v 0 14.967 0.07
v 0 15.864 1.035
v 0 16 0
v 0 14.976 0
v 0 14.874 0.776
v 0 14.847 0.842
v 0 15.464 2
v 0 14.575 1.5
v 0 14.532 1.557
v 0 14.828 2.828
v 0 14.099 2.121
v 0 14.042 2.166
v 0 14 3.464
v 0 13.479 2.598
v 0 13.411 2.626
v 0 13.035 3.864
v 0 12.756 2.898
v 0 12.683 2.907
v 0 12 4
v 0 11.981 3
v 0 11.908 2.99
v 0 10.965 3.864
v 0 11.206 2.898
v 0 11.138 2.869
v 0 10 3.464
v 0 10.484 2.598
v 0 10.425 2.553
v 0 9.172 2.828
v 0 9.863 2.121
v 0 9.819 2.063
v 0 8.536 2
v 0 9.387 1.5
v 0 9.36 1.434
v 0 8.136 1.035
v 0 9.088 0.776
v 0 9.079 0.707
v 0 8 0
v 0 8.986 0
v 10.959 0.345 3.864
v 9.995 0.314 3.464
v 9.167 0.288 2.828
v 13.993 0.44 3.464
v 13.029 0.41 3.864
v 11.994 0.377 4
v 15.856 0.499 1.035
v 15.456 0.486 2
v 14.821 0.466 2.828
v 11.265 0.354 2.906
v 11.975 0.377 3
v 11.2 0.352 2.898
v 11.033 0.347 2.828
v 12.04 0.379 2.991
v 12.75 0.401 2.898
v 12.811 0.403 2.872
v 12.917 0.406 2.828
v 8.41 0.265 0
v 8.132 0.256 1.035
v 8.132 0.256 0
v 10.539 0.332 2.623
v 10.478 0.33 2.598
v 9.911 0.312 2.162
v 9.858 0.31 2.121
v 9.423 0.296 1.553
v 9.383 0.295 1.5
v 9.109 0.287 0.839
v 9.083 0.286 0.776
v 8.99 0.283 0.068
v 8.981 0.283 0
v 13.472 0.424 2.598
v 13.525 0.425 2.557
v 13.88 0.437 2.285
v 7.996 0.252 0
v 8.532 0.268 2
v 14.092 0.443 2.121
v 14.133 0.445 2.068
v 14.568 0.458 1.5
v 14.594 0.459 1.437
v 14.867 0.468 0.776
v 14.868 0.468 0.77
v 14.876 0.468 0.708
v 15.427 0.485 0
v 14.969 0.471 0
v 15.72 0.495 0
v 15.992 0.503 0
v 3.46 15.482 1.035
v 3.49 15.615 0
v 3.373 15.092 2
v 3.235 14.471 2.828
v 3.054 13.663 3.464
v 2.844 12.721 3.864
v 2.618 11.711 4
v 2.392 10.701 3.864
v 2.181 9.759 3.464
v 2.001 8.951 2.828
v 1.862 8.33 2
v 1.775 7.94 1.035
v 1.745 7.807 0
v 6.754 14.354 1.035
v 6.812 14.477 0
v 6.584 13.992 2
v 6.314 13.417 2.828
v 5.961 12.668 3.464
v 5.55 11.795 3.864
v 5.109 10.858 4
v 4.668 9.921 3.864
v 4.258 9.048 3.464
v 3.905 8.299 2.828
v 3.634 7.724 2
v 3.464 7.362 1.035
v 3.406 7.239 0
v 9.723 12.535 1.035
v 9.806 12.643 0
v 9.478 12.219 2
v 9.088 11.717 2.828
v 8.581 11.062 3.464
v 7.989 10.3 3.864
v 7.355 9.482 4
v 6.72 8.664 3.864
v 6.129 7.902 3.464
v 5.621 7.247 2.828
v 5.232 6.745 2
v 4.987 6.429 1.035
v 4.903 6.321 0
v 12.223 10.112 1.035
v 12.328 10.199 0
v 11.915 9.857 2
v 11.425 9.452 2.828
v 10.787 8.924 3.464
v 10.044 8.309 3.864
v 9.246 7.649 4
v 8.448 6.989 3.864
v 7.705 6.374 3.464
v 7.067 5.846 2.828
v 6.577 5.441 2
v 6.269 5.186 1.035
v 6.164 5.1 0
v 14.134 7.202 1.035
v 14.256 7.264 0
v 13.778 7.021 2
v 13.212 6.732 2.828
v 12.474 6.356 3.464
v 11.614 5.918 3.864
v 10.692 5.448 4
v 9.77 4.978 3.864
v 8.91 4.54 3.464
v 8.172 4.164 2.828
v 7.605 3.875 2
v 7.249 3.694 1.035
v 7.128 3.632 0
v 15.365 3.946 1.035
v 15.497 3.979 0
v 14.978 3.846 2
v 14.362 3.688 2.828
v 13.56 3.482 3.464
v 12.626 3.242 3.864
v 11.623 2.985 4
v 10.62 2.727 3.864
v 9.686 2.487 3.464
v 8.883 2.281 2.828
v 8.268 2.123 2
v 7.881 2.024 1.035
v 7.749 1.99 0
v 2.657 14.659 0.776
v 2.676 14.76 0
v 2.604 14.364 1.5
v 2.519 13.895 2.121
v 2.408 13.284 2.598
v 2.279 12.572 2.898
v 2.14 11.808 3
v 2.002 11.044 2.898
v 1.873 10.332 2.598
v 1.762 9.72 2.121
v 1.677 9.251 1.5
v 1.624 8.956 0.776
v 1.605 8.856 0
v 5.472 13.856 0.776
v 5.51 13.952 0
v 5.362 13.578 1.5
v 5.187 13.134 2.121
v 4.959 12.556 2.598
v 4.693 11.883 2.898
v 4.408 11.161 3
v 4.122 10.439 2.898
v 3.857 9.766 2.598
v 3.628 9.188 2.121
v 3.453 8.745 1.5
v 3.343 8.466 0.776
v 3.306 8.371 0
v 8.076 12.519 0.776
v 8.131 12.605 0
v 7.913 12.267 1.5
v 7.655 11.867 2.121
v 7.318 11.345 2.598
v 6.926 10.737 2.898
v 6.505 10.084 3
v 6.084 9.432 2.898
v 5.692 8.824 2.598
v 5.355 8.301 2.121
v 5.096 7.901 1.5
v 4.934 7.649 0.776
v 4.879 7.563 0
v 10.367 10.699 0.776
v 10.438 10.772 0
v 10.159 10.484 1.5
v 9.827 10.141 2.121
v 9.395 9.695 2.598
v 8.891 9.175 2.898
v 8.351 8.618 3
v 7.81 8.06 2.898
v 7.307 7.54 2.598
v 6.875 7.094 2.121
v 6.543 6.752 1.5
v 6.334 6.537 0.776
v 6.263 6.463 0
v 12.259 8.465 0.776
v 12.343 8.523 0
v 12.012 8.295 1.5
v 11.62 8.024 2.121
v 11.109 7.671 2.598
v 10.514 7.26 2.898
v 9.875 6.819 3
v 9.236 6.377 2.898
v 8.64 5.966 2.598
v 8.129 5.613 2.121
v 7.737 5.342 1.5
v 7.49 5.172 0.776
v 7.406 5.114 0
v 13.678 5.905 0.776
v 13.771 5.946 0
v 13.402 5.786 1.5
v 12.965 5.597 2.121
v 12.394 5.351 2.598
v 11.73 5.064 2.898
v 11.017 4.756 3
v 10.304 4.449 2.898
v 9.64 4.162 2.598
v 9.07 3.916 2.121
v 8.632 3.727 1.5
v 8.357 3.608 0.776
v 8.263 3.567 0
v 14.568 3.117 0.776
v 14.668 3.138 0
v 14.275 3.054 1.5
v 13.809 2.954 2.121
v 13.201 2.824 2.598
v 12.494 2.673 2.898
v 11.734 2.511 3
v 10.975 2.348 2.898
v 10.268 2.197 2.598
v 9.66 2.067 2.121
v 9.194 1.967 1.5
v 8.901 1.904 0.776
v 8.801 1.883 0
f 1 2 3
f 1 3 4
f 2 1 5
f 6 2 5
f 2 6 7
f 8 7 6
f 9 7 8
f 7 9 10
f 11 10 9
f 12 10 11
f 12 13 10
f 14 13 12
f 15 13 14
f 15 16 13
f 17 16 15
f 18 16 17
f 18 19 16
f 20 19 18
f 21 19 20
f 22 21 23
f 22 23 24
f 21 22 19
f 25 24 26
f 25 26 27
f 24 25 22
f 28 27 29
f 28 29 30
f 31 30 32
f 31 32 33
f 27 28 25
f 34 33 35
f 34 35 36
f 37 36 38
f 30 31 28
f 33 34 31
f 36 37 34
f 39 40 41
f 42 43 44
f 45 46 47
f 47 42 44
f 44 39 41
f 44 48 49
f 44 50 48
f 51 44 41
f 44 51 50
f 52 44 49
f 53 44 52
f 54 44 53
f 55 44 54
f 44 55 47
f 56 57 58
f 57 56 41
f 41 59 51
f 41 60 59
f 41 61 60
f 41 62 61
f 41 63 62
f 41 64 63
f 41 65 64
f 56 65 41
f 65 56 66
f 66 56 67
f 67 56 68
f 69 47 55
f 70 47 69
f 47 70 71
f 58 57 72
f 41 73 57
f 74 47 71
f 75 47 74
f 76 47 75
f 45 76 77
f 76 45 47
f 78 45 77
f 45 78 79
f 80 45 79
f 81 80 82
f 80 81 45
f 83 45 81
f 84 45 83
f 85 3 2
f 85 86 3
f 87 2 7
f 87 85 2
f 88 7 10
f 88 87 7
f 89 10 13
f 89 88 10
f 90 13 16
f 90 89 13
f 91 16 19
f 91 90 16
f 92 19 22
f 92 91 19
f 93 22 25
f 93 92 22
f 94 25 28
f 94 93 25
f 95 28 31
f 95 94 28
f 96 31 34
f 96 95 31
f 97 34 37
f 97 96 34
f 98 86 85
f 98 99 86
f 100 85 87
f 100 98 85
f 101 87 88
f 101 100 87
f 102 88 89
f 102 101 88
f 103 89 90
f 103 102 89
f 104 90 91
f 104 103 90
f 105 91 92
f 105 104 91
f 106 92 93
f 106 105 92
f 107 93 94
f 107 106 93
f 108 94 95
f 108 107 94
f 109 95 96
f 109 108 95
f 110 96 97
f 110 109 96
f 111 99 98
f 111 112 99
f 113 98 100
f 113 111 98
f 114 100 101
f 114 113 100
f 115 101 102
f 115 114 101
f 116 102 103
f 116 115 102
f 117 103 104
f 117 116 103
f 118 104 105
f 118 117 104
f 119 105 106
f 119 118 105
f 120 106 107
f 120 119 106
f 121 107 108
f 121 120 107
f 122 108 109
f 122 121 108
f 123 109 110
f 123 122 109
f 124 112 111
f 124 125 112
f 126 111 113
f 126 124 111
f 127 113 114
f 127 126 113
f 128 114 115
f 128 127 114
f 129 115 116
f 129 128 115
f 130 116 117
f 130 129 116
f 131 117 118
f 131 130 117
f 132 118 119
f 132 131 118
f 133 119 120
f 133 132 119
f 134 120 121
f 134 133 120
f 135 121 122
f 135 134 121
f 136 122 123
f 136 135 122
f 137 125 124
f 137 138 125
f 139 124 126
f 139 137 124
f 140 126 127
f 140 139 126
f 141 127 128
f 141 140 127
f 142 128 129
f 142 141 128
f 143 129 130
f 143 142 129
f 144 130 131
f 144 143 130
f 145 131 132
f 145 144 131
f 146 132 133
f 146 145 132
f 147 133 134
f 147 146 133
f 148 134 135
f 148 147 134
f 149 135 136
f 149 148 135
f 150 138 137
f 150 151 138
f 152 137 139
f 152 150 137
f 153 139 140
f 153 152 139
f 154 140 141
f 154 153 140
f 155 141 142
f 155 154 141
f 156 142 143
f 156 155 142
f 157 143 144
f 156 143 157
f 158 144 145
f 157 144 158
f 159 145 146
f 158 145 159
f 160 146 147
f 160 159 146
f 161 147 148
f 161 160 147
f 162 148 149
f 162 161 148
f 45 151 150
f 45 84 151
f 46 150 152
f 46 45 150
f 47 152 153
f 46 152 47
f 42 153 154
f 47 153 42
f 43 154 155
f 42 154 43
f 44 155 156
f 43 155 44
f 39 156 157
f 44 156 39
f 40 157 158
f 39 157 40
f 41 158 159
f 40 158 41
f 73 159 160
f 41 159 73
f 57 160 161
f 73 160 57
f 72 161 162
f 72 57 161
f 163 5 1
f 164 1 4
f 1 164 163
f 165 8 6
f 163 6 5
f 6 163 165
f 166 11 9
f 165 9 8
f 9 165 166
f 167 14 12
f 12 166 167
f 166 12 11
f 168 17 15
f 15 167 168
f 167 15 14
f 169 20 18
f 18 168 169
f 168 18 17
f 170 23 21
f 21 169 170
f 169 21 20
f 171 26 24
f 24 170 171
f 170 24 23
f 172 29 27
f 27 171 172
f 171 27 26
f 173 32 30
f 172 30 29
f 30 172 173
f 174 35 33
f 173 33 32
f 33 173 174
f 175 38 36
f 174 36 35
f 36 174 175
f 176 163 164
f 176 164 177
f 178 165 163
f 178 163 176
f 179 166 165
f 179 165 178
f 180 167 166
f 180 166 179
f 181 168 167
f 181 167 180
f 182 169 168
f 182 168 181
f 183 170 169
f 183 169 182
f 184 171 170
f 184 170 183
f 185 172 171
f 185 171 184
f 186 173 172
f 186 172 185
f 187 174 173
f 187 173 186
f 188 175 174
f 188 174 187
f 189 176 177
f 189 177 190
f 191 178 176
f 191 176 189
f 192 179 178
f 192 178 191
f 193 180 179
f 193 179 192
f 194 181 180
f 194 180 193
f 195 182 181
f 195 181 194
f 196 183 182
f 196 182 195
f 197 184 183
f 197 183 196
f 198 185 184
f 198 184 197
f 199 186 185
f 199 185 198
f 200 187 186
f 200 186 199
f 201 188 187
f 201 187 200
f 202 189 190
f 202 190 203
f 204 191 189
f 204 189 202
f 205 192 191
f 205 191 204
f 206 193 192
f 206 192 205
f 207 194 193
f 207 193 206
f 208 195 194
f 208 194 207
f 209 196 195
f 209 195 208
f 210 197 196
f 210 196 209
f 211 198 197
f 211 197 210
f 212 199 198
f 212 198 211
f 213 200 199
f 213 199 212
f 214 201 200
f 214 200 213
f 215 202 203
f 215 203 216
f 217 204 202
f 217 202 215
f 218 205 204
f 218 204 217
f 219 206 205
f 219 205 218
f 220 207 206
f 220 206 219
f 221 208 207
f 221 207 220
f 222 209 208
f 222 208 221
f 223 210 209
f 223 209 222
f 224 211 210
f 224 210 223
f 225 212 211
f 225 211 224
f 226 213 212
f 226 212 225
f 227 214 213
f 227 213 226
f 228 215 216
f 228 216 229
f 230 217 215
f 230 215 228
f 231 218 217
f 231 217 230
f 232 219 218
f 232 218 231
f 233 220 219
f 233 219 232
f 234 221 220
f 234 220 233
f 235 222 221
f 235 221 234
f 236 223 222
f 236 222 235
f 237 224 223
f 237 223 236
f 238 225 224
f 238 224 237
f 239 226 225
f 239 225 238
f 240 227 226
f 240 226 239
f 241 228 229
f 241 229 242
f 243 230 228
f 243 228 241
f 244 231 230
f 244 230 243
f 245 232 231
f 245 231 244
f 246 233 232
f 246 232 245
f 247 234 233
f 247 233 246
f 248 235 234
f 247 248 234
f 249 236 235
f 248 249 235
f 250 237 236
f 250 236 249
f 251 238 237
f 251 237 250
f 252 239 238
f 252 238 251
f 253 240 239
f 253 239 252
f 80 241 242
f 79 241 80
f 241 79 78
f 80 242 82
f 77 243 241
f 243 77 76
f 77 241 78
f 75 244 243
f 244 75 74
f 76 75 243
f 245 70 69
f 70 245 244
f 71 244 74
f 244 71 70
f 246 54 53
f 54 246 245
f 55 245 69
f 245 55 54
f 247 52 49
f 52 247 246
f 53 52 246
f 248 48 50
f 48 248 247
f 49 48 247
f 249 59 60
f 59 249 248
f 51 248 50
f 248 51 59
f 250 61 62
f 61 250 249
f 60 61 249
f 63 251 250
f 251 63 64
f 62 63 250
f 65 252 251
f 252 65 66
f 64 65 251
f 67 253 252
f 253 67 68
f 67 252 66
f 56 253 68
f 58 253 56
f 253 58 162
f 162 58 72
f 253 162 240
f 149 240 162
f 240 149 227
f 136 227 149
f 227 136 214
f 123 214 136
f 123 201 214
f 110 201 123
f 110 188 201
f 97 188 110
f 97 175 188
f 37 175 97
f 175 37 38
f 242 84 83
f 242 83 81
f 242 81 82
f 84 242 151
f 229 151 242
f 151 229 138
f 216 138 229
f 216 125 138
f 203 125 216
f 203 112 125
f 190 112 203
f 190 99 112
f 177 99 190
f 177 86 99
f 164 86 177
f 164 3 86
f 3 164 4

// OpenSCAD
// file: ../build_environments.scad
// build_environments.scad: modules to build level sections
//

module pool(diameter=10.0, wall_height=2.0, step_width=3.0, connections=[])
{
    difference() {
        union() {
        difference() {
            cylinder(h=0.5,r1=diameter+step_width,r2=diameter+step_width,$fn=48);
            translate([0,0,-0.1])
                cylinder(h=0.7,r1=diameter,r2=diameter,$fn=48);
        }
        difference() {
            cylinder(h=wall_height,r1=diameter+step_width+1.0,r2=diameter+step_width+1.0,$fn=48);
            translate([0,0,-0.1])
                cylinder(h=wall_height+0.2,r1=diameter+step_width,r2=diameter+step_width,$fn=48);
        }
        }
    
        for (c = connections)
        {
            rotate([0,90,0]) {
                angle = atan2(c[1],c[0]);
                rotate([-angle,0,0]) {
                    cylinder(h=diameter+5.0,r1=c[2],r2=c[2],$fn=48);
                }
            }
        }
    }
}

module straight(length=10.0, width=2.0, dy1=0.0, dy2=0.0, dz=0.0)
{
    dims = [0, 0, 0, 0, 0, (dz/length)];
    matrix = [
        [ 1, dims[0], dims[1], 0 ],
        [ dims[2], 1, dims[4], 0 ],
        [ dims[5], dims[3], 1, 0 ],
        [ 0, 0, 0, 1 ]
    ];
    multmatrix(matrix)
    difference() {
        translate([dy1,0,0])
        union() {
            rotate([0,90,0]) {
                difference() {
                    cylinder(h=(length-dy1-dy2),r1=width+1.0,r2=width+1.0,$fn=24);
                    translate([0,0,-0.1])
                        cylinder(h=(length-dy1-dy2+0.2),r1=width,r2=width,$fn=24);
                }
                difference() {
                    cylinder(h=1.0,r1=width+2.0,r2=width+2.0,$fn=24);
                    translate([0,0,-0.1])
                        cylinder(h=1.2,r1=width,r2=width,$fn=24);
                }
                translate([0,0,(length-dy1-dy2)-1.0]) {
                    difference() {
                        cylinder(h=1.0,r1=width+2.0,r2=width+2.0,$fn=24);
                        translate([0,0,-0.1])
                            cylinder(h=1.2,r1=width,r2=width,$fn=24);
                    }
                }
            }
        }
        translate([0,0,-(2*width+4.0)/2])
            cube([3*length,3*length,2*width+4.0],center=true);
    }
}

module curve(p0=[0,0], center=[0,0], dir=1, angle=0.0, width=2.0)
{
    radius = sqrt((p0[0]-center[0])*(p0[0]-center[0]) + (p0[1]-center[1])*(p0[1]-center[1]));
    if (dir == 0) {
        difference() {
            rotate([0,0,-90])
            difference() {
                rotate_extrude(angle = angle, convexity = 10, $fn=32)
                    translate([radius, 0, 0])
                        circle(r = width+1.0,$fn=24);
                rotate([0,0,-1.0])
                    rotate_extrude(angle = angle+2.0, convexity = 10, $fn=32)
                        translate([radius, 0, 0])
                            circle(r = width,$fn=24);
            }
            translate([0,0,-(2*width+4.0)/2])
                cube([5*radius,5*radius,2*width+4.0],center=true);
        }
    }
    else {
        difference() {
            rotate([0,0,90])
            difference() {
                rotate_extrude(angle = -angle, convexity = 10, $fn=32)
                    translate([radius, 0, 0])
                        circle(r = width+1.0,$fn=24);
                rotate([0,0,1.0])
                    rotate_extrude(angle = -angle-2.0, convexity = 10, $fn=32)
                        translate([radius, 0, 0])
                            circle(r = width,$fn=24);
            }
            translate([0,0,-(2*width+4.0)/2])
                cube([5*radius,5*radius,2*width+4.0],center=true);
        }
    }

}

// test pool
//pool(diameter=12.0000, wall_height=3.0000, step_width=3.0000, connections=[[0.0000,-26.0000,2.0000], [23.6074,0.0000,2.0000]]);

// test straight, slope
//straight(length=26.0000, width=2.0000, dy1=11.8322, dy2=6.7082, dz=0.0000);
//straight(length=29.1549, width=12.0000, dy1=0.0000, dy2=0.0000, dz=-15.0000);

// test curve
//curve(p0=[23.6074, 0.0000], center=[23.6074, 5.0000], dir=0, angle=60.1011, width=2.0000);
//curve(p0=[33.6426, 12.4219], center=[37.9771, 9.9295], dir=1, angle=120.4627, width=2.0000);
// main file
use <../build_environments.scad>;
curve(p0=[-49.5424, 144.8050], center=[-46.9547, 133.0873], dir=1, angle=88.1981, width=3.0000);
